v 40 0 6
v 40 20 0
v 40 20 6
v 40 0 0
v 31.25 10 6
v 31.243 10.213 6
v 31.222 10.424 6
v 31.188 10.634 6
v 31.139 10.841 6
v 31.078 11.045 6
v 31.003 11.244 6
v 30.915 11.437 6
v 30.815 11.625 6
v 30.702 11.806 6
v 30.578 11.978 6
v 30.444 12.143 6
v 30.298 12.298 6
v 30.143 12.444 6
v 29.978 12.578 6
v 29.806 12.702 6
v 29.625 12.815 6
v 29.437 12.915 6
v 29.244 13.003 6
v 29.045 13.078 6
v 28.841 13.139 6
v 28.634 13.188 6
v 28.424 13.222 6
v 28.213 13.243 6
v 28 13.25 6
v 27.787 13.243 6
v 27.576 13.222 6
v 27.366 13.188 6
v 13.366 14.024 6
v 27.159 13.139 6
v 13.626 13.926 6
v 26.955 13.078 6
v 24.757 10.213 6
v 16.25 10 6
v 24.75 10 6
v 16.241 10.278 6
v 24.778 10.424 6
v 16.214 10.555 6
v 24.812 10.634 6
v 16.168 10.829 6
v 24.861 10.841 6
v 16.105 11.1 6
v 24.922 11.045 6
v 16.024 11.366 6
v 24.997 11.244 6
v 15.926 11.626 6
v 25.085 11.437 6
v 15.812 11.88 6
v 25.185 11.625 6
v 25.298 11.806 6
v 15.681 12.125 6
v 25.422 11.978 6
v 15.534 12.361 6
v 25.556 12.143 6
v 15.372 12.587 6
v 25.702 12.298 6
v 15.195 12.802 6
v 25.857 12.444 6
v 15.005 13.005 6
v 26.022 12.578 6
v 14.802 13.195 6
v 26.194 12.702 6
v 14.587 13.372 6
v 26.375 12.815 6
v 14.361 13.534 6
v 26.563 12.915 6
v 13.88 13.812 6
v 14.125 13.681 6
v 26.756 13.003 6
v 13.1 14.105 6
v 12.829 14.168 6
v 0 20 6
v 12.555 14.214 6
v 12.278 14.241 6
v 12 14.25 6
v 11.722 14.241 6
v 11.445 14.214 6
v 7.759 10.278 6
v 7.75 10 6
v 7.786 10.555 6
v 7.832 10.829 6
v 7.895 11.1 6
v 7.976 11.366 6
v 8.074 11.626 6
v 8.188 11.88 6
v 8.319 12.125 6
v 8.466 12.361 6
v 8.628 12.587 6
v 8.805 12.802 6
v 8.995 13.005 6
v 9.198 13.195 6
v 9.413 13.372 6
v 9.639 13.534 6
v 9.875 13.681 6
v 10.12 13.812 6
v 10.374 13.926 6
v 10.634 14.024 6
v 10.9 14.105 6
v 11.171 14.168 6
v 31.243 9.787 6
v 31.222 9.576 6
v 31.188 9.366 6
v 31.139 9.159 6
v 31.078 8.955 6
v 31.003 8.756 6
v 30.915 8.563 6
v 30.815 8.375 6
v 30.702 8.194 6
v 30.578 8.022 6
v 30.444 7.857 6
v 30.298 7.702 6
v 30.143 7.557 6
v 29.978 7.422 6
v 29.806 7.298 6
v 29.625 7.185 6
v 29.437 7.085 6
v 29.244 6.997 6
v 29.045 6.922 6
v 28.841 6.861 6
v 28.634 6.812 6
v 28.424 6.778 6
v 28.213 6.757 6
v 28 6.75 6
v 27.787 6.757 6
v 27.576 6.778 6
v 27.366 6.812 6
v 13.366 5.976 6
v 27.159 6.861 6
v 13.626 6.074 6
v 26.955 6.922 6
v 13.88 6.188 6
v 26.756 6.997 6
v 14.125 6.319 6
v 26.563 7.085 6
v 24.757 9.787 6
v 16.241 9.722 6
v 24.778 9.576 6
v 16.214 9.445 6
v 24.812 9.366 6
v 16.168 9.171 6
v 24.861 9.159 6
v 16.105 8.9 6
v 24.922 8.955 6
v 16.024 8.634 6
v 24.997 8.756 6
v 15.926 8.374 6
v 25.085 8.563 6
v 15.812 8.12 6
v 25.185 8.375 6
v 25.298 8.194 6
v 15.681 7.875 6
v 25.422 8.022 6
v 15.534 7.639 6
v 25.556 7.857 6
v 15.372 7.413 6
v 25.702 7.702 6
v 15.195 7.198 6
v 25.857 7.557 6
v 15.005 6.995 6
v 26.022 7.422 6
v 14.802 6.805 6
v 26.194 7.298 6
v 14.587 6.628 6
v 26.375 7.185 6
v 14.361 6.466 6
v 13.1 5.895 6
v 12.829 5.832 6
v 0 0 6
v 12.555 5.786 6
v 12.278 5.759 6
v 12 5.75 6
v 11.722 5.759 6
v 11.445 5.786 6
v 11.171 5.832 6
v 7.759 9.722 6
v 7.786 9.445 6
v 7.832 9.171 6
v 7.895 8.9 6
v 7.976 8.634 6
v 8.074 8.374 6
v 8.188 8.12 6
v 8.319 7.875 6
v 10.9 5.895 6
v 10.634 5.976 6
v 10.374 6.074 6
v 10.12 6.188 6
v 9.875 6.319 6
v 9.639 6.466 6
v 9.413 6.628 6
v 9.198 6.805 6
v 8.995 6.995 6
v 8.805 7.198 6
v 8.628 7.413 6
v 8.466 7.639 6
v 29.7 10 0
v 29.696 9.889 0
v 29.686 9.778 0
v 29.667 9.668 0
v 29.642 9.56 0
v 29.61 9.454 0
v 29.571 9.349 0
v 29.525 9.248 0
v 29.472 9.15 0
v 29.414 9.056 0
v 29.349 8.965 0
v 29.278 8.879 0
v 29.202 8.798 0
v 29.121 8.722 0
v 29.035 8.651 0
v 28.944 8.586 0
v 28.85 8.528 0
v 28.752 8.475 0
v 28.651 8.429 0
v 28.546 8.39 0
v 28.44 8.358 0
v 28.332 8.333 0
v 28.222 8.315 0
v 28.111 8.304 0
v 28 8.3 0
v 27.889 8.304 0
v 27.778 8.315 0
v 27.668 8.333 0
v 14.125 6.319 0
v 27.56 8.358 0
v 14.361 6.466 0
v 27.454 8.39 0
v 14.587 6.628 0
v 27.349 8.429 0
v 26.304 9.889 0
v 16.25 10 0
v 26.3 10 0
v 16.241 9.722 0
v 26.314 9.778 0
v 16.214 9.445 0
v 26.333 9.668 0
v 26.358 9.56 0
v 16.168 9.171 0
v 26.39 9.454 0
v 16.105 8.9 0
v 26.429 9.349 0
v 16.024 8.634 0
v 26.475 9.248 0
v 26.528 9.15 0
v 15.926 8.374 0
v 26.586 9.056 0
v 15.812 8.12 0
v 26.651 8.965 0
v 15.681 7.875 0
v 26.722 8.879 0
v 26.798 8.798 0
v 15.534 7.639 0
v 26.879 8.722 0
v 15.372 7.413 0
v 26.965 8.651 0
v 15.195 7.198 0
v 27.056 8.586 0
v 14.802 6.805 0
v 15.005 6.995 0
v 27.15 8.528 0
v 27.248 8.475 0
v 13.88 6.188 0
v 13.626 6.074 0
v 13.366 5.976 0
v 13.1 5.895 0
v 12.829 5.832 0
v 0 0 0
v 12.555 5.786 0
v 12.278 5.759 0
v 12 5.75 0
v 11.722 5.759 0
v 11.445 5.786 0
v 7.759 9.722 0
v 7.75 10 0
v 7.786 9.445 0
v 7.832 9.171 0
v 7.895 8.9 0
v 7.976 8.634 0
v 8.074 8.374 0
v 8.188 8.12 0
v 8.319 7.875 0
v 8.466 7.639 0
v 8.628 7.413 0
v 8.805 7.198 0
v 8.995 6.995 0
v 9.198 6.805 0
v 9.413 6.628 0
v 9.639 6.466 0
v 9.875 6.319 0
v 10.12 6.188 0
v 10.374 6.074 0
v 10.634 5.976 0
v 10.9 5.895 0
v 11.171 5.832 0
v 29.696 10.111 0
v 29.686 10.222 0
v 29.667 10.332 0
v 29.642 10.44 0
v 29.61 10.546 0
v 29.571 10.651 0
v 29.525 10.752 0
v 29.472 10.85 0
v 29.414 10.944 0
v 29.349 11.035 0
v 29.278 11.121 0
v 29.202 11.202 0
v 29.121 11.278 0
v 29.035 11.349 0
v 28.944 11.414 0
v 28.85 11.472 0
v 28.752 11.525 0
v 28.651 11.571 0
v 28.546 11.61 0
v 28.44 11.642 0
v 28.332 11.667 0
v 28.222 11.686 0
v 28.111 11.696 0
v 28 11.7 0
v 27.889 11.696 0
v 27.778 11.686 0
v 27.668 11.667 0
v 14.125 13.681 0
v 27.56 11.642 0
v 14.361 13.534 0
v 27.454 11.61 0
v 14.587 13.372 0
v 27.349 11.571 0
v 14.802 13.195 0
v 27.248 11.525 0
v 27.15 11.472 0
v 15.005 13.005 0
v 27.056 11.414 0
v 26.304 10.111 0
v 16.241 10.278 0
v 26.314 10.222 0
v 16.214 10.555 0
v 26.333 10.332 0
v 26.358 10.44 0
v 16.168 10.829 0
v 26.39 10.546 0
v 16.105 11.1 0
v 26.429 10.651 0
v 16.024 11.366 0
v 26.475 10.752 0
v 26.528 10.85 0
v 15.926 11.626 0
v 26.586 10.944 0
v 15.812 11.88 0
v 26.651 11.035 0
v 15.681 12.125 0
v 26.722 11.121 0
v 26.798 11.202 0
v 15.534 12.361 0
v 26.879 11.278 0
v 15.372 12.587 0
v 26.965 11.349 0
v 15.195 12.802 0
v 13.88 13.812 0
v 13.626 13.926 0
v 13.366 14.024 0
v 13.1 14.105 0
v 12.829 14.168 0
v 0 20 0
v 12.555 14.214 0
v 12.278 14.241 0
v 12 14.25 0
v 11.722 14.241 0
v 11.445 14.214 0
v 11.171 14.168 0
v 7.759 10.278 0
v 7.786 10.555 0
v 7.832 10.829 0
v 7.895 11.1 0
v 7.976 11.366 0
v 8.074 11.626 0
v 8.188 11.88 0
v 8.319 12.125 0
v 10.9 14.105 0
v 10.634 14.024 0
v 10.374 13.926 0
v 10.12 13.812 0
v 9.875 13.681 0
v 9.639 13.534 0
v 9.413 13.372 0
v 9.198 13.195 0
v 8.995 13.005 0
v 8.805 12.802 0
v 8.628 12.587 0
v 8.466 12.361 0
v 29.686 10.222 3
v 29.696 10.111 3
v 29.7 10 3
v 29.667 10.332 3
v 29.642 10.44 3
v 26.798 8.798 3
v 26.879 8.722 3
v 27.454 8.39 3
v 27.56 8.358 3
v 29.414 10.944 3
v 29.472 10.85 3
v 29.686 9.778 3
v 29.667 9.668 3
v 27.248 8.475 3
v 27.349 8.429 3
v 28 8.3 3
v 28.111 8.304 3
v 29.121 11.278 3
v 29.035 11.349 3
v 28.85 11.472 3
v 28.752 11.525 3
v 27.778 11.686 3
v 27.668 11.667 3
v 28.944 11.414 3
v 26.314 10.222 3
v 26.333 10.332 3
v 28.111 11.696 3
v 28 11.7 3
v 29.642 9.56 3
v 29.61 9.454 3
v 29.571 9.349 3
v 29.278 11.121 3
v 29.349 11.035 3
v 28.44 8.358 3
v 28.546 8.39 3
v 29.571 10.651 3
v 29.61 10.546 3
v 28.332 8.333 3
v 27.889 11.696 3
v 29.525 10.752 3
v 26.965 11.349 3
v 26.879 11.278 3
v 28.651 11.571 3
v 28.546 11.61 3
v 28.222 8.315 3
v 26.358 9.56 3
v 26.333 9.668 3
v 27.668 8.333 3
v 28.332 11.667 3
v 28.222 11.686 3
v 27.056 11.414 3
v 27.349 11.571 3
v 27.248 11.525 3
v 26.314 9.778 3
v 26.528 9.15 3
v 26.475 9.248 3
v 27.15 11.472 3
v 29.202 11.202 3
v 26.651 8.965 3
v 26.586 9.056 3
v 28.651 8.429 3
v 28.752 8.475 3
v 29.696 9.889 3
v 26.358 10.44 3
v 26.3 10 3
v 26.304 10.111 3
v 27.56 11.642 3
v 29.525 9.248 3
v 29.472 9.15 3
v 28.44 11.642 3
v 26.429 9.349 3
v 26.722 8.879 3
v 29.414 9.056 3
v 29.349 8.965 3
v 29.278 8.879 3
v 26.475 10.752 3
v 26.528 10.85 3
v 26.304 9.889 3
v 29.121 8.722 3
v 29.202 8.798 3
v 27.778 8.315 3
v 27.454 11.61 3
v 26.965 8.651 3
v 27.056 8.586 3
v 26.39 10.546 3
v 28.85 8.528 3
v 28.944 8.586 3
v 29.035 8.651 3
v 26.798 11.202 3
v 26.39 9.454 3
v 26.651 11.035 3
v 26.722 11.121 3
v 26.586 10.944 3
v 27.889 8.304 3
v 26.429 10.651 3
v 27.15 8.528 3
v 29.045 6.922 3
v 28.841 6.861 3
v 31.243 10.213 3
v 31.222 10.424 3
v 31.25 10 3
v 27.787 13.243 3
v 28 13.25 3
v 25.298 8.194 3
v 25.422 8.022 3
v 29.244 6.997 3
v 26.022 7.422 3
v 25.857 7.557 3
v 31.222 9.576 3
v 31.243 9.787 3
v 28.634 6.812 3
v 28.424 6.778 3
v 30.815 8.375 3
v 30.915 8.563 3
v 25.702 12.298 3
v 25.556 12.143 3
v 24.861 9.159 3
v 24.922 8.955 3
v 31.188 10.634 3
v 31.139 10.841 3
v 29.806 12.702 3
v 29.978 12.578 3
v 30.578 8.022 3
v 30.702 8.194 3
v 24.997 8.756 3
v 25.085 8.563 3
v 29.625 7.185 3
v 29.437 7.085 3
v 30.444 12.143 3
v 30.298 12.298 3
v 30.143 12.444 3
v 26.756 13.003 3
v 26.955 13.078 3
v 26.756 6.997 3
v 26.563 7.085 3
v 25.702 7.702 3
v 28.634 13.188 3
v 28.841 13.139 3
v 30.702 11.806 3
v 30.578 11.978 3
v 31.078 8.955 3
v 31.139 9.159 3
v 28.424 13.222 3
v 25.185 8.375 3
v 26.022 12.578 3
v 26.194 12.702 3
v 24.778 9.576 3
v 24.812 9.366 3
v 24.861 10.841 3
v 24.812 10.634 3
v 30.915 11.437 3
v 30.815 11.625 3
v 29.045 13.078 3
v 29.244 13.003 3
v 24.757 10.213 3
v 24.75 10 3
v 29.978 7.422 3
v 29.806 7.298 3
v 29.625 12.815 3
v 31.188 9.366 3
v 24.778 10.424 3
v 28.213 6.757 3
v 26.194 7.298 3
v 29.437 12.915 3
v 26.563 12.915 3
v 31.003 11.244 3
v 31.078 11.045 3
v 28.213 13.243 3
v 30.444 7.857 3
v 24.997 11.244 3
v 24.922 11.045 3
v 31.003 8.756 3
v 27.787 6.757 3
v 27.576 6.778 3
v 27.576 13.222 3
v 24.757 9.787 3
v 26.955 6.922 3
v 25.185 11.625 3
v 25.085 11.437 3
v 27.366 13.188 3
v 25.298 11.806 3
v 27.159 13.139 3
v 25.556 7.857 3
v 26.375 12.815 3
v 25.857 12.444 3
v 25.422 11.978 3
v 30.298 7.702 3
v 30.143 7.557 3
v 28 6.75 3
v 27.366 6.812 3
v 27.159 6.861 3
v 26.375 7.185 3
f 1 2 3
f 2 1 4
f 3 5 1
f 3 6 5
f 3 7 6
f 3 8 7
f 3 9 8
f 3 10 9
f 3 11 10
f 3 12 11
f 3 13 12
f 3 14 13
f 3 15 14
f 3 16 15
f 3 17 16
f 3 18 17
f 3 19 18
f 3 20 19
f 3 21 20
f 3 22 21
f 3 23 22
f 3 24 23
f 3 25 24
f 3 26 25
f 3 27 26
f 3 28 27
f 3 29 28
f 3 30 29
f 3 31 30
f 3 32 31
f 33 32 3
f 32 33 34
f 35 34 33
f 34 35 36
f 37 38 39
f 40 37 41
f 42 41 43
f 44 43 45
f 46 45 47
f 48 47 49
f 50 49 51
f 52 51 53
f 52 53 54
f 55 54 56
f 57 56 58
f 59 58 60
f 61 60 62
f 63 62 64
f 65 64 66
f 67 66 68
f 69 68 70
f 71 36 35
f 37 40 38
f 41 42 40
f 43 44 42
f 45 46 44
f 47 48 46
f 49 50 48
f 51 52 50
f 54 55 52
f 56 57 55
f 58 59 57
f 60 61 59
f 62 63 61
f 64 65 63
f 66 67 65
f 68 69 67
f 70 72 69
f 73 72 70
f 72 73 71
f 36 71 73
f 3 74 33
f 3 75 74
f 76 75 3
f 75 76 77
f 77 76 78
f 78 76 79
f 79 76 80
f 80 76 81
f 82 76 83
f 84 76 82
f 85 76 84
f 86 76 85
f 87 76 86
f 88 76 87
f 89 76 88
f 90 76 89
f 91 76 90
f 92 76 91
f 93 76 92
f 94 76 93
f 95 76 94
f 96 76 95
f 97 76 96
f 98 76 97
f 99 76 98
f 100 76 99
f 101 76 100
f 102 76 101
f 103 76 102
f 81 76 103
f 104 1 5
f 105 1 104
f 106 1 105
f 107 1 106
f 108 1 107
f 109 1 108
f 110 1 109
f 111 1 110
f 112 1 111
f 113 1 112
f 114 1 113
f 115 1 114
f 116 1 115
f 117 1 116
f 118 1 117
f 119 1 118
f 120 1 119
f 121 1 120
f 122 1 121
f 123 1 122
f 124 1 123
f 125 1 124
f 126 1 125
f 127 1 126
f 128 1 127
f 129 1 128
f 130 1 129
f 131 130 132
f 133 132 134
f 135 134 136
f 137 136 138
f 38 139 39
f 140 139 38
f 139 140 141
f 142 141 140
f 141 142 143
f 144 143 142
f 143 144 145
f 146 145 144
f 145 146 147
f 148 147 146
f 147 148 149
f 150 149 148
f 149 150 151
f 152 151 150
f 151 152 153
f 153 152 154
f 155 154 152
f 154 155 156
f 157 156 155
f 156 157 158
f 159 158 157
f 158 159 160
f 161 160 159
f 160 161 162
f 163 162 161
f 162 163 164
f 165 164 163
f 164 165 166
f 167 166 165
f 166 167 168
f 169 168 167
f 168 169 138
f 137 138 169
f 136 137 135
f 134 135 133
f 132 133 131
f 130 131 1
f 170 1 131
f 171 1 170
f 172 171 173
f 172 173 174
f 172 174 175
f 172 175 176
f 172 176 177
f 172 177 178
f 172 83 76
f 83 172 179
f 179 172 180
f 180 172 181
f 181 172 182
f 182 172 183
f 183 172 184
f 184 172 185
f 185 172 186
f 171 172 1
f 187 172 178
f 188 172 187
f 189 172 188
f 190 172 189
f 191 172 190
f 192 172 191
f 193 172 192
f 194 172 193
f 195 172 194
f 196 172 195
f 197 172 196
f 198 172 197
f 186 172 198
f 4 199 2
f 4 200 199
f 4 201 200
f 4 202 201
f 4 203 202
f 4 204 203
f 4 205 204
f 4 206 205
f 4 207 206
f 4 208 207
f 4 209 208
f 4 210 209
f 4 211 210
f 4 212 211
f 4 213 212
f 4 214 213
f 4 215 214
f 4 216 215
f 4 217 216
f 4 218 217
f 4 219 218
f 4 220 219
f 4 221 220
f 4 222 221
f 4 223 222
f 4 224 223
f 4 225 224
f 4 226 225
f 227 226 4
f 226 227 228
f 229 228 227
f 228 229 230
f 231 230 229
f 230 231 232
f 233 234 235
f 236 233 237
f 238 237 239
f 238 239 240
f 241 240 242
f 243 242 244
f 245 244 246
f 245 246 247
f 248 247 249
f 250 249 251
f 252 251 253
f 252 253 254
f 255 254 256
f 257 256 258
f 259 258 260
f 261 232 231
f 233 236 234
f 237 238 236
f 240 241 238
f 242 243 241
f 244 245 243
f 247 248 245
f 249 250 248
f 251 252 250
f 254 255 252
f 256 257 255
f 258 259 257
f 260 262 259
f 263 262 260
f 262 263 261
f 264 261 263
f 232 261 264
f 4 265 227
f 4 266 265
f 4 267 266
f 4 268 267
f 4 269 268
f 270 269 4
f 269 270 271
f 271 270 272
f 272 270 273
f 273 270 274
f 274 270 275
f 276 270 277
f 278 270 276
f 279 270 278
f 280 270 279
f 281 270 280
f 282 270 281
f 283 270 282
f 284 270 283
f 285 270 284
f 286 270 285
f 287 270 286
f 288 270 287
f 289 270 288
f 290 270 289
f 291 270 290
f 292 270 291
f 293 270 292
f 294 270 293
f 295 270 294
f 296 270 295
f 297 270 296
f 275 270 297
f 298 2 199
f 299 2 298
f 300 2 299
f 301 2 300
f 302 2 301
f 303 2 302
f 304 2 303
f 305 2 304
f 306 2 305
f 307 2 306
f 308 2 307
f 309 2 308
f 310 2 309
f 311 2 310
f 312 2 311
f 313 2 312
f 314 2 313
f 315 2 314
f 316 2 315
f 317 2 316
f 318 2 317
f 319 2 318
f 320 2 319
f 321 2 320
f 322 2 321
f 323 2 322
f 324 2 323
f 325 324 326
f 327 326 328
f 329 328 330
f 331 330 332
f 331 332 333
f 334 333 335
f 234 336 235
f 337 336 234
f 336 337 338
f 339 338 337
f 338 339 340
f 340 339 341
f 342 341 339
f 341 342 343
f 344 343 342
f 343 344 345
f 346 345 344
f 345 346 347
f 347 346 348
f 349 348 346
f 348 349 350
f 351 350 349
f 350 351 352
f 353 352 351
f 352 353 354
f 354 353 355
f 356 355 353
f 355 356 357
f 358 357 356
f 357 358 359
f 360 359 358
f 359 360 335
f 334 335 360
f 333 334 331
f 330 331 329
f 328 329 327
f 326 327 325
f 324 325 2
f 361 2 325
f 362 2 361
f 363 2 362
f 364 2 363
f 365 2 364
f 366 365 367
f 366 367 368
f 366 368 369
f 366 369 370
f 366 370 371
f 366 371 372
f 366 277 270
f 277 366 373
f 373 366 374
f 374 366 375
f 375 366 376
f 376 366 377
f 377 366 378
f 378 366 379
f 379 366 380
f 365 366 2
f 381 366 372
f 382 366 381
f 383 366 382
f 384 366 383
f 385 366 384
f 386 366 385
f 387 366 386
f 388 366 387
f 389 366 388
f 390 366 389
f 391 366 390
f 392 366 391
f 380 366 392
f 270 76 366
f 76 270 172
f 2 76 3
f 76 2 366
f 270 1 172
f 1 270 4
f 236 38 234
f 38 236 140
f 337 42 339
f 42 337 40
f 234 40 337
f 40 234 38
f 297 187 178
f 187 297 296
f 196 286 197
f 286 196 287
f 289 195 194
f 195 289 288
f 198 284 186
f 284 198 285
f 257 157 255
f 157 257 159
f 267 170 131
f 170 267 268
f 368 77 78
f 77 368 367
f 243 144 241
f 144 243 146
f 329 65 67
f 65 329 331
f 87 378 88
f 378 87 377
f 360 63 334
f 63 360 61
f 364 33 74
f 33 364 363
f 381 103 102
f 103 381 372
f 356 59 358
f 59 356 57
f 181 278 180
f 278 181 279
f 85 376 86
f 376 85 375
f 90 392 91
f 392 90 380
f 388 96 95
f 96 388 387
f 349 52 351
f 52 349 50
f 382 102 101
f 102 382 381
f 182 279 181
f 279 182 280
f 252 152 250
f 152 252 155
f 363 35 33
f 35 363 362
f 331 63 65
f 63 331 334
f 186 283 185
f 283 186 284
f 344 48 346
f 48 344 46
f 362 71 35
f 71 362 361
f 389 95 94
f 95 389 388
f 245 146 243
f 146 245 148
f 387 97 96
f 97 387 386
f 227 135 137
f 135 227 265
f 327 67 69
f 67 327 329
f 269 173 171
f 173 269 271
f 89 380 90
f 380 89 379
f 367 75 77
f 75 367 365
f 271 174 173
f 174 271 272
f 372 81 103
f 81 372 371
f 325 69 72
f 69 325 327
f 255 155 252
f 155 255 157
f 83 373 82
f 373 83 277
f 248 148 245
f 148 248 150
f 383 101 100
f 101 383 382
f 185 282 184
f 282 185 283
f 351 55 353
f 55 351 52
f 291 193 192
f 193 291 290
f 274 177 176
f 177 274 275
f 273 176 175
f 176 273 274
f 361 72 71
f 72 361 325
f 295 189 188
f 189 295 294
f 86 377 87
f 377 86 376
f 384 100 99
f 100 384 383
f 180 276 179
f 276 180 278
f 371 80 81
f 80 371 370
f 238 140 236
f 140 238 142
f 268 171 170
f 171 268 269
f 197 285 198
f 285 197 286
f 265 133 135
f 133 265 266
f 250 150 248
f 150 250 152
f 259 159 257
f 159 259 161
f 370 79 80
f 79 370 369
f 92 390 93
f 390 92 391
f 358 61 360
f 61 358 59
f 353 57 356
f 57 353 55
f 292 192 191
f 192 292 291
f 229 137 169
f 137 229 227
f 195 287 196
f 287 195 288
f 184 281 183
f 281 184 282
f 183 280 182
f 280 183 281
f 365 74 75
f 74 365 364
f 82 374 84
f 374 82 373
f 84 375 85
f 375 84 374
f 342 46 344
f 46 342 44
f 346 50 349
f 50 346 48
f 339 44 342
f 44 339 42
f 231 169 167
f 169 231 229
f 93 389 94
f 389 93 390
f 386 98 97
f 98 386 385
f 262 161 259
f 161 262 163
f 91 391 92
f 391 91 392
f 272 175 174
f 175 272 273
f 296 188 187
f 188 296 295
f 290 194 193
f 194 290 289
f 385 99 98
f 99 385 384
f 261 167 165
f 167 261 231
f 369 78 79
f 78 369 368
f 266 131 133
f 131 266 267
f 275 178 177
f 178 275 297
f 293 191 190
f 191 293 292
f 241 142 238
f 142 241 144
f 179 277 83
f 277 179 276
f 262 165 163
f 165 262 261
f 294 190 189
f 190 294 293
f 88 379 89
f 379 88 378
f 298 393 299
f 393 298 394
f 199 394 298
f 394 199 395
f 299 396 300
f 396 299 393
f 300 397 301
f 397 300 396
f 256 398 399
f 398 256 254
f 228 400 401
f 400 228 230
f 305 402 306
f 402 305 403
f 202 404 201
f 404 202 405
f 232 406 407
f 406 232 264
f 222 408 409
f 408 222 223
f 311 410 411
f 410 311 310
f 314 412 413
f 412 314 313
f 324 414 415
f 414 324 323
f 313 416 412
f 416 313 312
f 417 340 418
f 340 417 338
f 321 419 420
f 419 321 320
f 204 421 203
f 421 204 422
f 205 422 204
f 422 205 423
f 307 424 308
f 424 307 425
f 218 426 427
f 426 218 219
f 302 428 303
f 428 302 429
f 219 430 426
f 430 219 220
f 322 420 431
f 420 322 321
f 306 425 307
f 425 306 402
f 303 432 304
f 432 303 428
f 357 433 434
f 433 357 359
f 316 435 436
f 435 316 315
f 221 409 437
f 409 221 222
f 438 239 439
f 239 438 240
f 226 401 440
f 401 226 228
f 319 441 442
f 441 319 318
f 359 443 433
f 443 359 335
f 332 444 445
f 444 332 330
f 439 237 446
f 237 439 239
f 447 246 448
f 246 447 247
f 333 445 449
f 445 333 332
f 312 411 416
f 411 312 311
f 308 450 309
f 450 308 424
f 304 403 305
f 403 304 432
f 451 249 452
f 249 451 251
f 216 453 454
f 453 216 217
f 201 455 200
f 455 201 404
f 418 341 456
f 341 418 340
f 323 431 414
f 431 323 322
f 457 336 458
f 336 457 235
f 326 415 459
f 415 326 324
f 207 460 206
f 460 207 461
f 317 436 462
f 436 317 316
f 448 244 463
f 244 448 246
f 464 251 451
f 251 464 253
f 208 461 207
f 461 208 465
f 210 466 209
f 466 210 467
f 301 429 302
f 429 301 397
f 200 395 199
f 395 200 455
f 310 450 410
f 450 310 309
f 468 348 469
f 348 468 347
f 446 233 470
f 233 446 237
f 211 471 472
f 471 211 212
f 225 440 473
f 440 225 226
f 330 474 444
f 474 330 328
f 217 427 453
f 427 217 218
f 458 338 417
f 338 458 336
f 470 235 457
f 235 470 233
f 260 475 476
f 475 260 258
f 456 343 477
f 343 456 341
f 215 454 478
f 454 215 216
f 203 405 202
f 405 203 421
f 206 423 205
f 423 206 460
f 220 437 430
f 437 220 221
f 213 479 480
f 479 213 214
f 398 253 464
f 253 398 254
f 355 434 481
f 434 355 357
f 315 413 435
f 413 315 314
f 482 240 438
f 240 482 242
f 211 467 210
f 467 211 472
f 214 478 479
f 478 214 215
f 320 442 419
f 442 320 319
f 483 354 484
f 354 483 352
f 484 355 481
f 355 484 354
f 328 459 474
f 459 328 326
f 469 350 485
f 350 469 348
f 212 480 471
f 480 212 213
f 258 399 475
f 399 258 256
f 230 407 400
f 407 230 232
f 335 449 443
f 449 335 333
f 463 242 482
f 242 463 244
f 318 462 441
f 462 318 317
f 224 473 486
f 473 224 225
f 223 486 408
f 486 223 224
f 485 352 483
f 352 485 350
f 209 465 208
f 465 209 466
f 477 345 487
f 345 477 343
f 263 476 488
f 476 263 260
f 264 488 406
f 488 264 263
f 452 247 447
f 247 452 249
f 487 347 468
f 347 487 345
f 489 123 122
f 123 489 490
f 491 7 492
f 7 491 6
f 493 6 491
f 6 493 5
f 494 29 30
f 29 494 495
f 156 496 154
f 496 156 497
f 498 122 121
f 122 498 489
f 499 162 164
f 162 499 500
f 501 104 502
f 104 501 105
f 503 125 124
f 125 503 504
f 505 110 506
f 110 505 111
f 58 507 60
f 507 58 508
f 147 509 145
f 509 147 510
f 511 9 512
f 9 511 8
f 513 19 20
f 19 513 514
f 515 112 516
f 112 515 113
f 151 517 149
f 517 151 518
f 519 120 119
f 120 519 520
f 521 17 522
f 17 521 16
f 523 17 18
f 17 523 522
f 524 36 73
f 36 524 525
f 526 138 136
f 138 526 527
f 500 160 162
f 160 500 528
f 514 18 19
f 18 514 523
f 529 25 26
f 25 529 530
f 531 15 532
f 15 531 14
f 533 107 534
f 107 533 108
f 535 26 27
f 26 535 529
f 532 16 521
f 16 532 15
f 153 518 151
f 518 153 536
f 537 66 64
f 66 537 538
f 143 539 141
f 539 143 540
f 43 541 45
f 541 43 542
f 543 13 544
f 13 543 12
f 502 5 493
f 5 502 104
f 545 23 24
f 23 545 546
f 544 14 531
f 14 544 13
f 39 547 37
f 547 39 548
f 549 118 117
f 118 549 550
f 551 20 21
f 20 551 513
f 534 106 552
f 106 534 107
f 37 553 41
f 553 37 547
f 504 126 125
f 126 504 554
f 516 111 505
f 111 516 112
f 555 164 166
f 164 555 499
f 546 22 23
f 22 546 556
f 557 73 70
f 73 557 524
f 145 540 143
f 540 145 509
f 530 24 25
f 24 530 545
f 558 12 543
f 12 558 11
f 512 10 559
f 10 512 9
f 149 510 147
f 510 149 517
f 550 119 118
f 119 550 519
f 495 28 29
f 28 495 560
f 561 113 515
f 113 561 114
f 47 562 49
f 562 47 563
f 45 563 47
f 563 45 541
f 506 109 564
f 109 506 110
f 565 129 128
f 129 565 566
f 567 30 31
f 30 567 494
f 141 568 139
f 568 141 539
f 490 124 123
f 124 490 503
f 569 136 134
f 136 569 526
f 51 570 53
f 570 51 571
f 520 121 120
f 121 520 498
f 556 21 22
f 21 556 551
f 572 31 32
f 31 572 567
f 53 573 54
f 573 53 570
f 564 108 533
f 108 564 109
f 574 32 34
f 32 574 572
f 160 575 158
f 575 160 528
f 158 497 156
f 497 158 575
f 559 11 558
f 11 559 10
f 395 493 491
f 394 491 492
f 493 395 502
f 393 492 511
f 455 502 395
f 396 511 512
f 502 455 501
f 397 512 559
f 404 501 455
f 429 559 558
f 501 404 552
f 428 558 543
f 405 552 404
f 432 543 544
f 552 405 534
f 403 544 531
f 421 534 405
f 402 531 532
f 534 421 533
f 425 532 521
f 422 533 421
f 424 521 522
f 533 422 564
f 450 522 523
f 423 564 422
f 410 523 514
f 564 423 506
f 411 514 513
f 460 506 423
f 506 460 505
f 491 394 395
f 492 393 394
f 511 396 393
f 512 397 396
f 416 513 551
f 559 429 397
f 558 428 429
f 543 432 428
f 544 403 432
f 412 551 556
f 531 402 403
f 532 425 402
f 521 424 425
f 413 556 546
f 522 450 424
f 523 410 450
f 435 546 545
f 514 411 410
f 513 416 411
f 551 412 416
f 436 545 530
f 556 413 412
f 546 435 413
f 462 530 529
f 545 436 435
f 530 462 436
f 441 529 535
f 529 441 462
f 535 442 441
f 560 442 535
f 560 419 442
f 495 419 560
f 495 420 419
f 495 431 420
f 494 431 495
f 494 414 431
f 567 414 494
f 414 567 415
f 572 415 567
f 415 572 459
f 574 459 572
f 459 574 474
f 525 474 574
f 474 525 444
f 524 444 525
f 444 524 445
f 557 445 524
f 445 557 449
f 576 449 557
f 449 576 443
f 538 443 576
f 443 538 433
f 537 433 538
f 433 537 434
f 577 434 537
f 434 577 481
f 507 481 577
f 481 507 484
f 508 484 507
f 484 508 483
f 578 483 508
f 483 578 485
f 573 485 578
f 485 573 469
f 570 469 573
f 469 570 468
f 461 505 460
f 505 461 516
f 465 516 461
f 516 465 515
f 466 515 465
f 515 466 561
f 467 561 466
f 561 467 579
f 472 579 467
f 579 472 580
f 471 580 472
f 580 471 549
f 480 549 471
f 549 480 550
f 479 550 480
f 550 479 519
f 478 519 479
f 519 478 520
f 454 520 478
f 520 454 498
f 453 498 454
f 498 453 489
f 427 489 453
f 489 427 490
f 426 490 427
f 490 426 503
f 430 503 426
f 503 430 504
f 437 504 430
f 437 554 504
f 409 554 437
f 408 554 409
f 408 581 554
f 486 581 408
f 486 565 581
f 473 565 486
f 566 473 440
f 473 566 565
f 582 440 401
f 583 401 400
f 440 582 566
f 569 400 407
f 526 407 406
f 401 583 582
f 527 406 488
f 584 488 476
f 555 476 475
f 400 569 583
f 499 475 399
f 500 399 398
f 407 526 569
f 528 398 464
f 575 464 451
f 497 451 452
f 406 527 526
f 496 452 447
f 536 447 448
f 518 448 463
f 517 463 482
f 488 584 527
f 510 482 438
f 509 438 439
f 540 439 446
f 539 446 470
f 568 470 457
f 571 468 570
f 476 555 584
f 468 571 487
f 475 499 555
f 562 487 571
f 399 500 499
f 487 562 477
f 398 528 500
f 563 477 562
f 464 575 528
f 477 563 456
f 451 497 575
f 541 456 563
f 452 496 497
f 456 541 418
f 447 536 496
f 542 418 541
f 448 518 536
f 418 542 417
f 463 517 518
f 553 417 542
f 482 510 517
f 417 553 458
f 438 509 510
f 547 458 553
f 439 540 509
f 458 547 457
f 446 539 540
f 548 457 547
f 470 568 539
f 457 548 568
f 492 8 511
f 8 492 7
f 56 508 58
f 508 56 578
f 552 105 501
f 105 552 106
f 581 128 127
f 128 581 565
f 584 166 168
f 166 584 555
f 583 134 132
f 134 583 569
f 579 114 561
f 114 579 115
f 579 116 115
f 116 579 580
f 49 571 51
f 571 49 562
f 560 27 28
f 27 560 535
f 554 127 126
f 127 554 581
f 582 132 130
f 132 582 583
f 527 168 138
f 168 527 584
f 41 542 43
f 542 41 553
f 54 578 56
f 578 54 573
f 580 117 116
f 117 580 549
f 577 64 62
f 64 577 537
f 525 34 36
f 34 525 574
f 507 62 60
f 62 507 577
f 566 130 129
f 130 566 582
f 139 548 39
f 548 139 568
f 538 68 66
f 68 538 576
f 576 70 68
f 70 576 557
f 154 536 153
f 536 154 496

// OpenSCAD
// ---------------------------------------------------------------------------
// Test-print coupon for the satlab reaction-wheel flywheel.
//
// Fast (~10 min) validation print. Confirms the printer is healthy AND that
// the hole dimensions used in flywheel_gm4108h.scad actually fit real
// hardware before committing to the full 2-hour flywheel:
//   - M8 through-hole (tuning-mass bolt)  -> should pass an M8 bolt cleanly
//   - M3 clearance + counterbore (rotor mount) -> M3 screw slides, head sits flush
// It also gives you a single-wall + dimension check (the coupon should
// measure 40.0 x 20.0 x 6.0 mm on calipers).
// ---------------------------------------------------------------------------

len   = 40;
wid   = 20;
thk   = 6;

m8_d        = 8.5;   // matches tuning_bore_d in flywheel_gm4108h.scad
m3_d        = 3.4;   // matches mount_bolt_d
m3_cbore_d  = 6.5;   // matches mount_cbore_d
m3_cbore_h  = 3;     // matches mount_cbore_h

$fn = 96;

difference() {
    cube([len, wid, thk]);

    // M8 tuning-mass hole (left)
    translate([12, wid/2, -1]) cylinder(h = thk + 2, d = m8_d);

    // M3 mount hole with top counterbore (right)
    translate([28, wid/2, -1]) cylinder(h = thk + 2, d = m3_d);
    translate([28, wid/2, thk - m3_cbore_h]) cylinder(h = m3_cbore_h + 1, d = m3_cbore_d);
}
